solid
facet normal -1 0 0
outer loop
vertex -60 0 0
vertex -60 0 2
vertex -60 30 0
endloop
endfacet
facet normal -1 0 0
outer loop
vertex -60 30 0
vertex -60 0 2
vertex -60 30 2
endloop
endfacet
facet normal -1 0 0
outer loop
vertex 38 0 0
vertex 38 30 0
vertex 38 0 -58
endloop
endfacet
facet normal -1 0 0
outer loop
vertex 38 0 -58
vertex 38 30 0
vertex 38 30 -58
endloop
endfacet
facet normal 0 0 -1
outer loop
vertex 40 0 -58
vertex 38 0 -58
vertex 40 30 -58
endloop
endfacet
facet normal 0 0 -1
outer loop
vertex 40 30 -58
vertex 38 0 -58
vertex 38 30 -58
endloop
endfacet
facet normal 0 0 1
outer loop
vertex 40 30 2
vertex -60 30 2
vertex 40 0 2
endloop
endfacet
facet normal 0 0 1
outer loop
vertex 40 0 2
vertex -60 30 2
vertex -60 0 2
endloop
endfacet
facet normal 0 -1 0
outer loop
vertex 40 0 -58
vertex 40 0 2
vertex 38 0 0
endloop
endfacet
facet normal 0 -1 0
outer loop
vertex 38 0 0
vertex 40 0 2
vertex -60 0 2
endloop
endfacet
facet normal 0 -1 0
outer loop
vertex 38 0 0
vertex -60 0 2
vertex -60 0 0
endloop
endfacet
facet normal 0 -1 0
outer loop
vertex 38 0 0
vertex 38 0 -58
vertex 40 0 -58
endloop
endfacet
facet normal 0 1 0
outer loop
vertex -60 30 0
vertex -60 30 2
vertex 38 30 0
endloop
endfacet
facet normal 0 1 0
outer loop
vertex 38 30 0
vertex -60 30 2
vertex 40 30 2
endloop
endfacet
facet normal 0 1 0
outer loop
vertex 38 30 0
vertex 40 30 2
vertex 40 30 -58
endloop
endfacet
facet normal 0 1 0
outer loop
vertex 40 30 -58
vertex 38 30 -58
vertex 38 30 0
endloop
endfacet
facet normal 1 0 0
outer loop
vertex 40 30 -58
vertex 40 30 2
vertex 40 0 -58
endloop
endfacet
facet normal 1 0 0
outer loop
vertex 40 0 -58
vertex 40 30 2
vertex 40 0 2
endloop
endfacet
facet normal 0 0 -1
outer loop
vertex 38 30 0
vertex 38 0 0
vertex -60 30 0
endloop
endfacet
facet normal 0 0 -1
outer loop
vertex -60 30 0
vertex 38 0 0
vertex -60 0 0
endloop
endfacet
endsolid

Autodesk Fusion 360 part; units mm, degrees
sketch "Sketch1" plane through (0, 0, 0) normal (0, 0, 1) x (1, 0, 0)
  line L0 (0, 0) -> (40, 0)
  line L1 (40, 0) -> (40, 30)
  line L2 (40, 30) -> (0, 30)
  line L3 (0, 30) -> (0, 0)
  dimension "d1" = 40
  dimension "d2" = 30
extrude "Extrude1" add sketch "Sketch1" along normal blind 2
sketch "Sketch2" plane through (0, 0, 2) normal (0, 0, 1) x (-1, 0, 0)
  line L0 (0, -30) -> (0, 0)
  line L1 (0, 0) -> (-40, 0)
  line L2 (-40, 0) -> (-40, -30)
  line L3 (-40, -30) -> (0, -30)
  line L4 (-9, -30) -> (-10, -30)
  line L5 (-10, -30) -> (-10, 0)
  line L6 (-10, 0) -> (-9, 0)
  line L7 (-9, 0) -> (-9, -30)
  dimension "d5" = 1
  dimension "d6" = 30
  dimension "d7" = 9
extrude "Extrude2" cut sketch "Sketch2" against normal blind 1 contours L1 L3 L4 L5 L6 L7
sketch "Sketch4" plane through (0, 0, 0) normal (0, 0, -1) x (1, 0, 0)
  line L0 (0, 0) -> (0, -30)
  line L1 (0, -30) -> (40, -30)
  line L2 (40, -30) -> (40, 0)
  line L3 (40, 0) -> (0, 0)
  line L4 (40, 0) -> (38, 0)
  line L5 (38, 0) -> (38, -30)
  line L6 (38, -30) -> (40, -30)
  line L7 (40, -30) -> (40, 0)
extrude "Extrude3" add sketch "Sketch4" along normal blind 58 contours L1 L2 L3 L4 L5 L6 L7
extrude "Extrude4" add 1 faces at (0, 20, 0.6667) along direction (-1, 0, 0) blind 60
extrude "Extrude5" add 1 faces at (9.3333, 20, 1) along direction (0, 0, 1) blind 1
sketch "Sketch5" plane through (0, 0, 2) normal (0, 0, 1) x (-1, 0, 0)
  line L0 (-40, -30) -> (60, -30)
  line L1 (60, -30) -> (60, 0)
  line L2 (60, 0) -> (-40, 0)
  line L3 (-40, 0) -> (-40, -30)
  line L4 (11, 0) -> (10, 0)
  line L5 (10, 0) -> (10, -30)
  line L6 (10, -30) -> (11, -30)
  line L7 (11, -30) -> (11, 0)
  dimension "d18" = 1
  dimension "d19" = 30
  dimension "d20" = 49
extrude "Extrude6" cut sketch "Sketch5" along normal blind 1 contours L0 L2 L4 L5 L6 L7
sketch "Sketch6" plane through (0, 0, 2) normal (0, 0, 1) x (-1, 0, 0)
  line L0 (60, 0) -> (-40, 0)
  line L1 (-40, 0) -> (-40, -30)
  line L2 (-40, -30) -> (60, -30)
  line L3 (60, -30) -> (60, 0)
equation "d21 = mm"
